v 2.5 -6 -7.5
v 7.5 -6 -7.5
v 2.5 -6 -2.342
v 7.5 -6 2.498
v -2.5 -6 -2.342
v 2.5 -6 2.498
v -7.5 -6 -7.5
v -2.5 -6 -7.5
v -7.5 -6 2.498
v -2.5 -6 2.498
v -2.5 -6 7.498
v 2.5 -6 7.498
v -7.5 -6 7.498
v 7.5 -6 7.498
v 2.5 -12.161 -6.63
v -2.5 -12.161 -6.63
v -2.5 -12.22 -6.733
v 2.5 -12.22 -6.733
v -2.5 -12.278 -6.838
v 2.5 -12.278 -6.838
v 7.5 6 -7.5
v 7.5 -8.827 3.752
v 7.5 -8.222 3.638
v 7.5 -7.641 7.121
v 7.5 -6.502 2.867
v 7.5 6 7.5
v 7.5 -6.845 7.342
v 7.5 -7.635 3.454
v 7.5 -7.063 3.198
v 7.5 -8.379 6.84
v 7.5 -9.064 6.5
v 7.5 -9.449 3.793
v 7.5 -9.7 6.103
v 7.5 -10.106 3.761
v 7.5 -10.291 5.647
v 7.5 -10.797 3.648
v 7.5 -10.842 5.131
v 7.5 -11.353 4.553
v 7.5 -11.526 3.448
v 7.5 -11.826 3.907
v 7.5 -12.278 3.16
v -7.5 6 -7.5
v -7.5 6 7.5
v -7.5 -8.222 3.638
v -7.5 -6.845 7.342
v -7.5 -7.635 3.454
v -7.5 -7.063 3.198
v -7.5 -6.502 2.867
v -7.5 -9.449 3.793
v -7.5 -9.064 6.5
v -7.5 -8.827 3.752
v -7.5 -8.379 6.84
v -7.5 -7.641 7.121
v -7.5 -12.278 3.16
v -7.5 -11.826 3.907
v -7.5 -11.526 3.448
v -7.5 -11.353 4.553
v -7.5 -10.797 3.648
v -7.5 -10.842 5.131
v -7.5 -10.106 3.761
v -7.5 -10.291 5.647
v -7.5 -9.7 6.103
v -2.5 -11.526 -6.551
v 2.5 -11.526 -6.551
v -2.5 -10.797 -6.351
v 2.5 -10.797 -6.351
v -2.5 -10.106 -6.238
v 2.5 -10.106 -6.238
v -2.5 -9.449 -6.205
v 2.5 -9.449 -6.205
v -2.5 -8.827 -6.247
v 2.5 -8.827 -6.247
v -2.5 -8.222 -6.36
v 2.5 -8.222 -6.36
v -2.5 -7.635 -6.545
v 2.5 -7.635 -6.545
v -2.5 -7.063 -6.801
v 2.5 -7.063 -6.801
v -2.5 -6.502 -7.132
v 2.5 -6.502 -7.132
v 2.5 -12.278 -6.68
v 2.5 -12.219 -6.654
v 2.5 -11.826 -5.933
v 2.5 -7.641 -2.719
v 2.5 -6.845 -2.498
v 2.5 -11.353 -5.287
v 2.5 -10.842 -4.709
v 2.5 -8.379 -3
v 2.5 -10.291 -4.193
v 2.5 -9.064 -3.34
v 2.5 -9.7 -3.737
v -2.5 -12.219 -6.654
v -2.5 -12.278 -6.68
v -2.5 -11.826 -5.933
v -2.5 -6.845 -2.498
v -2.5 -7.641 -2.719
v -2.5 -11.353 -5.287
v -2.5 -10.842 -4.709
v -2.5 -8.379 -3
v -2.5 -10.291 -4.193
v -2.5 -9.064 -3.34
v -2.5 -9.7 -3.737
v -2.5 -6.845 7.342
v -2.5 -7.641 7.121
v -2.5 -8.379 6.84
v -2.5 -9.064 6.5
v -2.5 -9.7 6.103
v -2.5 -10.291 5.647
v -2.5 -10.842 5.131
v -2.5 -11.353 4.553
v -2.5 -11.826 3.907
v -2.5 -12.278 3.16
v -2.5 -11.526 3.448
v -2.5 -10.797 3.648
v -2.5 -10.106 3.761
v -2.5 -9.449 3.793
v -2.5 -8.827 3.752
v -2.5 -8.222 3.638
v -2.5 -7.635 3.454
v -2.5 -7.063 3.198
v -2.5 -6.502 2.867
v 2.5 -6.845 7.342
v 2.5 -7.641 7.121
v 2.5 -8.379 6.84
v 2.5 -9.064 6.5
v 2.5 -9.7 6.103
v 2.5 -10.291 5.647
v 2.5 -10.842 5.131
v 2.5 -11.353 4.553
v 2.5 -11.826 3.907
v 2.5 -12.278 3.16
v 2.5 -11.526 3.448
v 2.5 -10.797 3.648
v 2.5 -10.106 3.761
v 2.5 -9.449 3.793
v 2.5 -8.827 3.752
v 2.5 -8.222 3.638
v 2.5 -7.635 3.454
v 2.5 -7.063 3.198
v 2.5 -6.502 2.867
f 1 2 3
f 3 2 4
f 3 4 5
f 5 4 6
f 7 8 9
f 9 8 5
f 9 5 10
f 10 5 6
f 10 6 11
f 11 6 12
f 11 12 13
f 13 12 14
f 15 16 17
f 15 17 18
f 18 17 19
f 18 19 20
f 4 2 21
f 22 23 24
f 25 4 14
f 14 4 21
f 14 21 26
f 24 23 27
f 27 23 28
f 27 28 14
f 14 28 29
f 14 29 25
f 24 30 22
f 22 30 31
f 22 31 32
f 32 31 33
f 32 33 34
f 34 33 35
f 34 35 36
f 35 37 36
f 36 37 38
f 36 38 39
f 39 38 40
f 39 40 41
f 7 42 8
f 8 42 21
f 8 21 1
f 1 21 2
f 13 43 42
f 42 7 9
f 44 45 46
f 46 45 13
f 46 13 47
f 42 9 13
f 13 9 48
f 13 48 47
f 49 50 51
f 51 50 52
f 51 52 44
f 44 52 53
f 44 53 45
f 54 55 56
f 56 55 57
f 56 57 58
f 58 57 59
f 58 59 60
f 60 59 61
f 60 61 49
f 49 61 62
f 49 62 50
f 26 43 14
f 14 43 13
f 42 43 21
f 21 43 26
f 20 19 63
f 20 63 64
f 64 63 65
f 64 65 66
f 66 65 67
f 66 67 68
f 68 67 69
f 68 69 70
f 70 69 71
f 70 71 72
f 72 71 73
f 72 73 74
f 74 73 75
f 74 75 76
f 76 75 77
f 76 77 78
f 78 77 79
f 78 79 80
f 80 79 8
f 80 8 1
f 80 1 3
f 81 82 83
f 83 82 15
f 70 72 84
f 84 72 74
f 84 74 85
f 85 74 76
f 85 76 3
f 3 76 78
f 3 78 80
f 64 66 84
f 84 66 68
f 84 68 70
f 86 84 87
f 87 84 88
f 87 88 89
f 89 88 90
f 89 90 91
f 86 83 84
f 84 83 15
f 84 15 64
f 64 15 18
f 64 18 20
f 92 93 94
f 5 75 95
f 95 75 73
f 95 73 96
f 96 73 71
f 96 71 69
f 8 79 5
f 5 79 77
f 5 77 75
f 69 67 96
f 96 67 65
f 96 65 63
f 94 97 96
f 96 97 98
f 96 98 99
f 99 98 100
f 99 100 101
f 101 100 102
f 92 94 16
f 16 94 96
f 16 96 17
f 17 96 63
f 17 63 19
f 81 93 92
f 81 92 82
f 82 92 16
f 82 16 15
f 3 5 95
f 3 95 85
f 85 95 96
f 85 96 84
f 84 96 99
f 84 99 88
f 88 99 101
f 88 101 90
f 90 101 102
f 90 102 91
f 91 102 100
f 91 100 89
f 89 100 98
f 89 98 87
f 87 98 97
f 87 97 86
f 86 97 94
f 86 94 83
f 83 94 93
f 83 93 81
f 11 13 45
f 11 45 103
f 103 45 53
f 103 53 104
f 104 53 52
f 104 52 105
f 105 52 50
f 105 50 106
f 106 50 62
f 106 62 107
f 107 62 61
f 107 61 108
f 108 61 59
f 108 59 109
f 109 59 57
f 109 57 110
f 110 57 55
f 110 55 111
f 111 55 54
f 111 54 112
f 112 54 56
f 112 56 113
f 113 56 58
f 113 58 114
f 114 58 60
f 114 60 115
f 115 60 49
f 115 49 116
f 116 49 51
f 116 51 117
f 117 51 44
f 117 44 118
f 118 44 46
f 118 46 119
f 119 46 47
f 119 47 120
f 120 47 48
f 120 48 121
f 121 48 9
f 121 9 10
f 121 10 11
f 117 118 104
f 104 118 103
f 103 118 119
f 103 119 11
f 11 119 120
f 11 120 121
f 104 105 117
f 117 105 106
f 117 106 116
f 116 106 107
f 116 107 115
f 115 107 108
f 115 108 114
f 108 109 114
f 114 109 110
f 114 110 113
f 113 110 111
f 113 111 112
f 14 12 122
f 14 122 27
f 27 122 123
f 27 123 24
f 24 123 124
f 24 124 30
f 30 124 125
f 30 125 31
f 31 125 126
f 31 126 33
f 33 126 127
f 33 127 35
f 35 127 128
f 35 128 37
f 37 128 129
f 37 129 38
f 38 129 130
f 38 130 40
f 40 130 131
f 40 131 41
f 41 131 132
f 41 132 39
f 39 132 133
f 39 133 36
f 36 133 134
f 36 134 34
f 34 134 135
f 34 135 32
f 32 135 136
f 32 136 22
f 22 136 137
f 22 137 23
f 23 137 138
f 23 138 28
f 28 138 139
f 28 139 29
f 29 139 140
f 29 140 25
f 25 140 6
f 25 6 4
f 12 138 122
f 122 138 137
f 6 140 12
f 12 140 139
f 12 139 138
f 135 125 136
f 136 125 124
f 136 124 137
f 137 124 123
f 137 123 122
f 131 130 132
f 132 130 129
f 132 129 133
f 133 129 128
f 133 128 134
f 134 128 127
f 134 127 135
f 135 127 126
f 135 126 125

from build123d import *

# Parameters (mm, degrees)
SKETCH_1_W               = 15
SKETCH_1_H               = 15
EXTRUDE_1_DEPTH          = 6
EXTRUDE_2_DEPTH          = 2.5
PATTERN_START            = -7.5
PATTERN_SKETCH_2_DEPTH   = 5
PATTERN_START_2          = 2.5
PATTERN_SKETCH_2_2_DEPTH = 5
PATTERN_START_3          = -2.5
PATTERN_SKETCH_2_3_DEPTH = 5


# Read off the part's stored shape, not the designer's step: 스케치 패턴2
with BuildPart() as part:
    # 스케치1 → 보스-돌출1 (new, symmetric)
    with BuildSketch(Plane(origin=(0, 0, 0), x_dir=(1, 0, 0), z_dir=(0, 1, 0))):
        Rectangle(SKETCH_1_W, SKETCH_1_H)
    extrude(amount=EXTRUDE_1_DEPTH, both=True)

    # 스케치3 → 보스-돌출2 (add, symmetric)
    with BuildSketch(Plane(origin=(0, 0, 0), x_dir=(0, 0, -1), z_dir=(1, 0, 0))):
        with BuildLine():
            Line((2.5, -6), (7.5, -6))
            add(Edge.make_bspline(
                [(6.837946582, -12.278081575), (5.299376428, -8.730527415), (7.5, -6)],
                knots=[0, 0, 0, 1, 1, 1], degree=2))
            add(Edge.make_bspline(
                [(2.5, -6), (3.098107293, -10.225865232), (6.837946582, -12.278081575)],
                knots=[0, 0, 0, 1, 1, 1], degree=2))
        make_face()
    extrude(amount=EXTRUDE_2_DEPTH, both=True)

    # 스케치 패턴2 outline → 스케치 패턴2 (add)
    with BuildSketch(Plane.YZ.offset(PATTERN_START)):
        with BuildLine():
            add(Edge.make_bspline(
                [(-12.278081575, 3.16045553), (-8.730527415, 4.699025684), (-6, 2.498402112)],
                knots=[0, 0, 0, 1, 1, 1], degree=2))
            Line((-6, 2.498402112), (-6, 7.498402112))
            add(Edge.make_bspline(
                [(-6, 7.498402112), (-10.225865232, 6.900294818), (-12.278081575, 3.16045553)],
                knots=[0, 0, 0, 1, 1, 1], degree=2))
        make_face()
    extrude(amount=PATTERN_SKETCH_2_DEPTH)

    # Pattern Sketch 2 2 outline → Pattern Sketch 2 2 (add)
    with BuildSketch(Plane.YZ.offset(PATTERN_START_2)):
        with BuildLine():
            add(Edge.make_bspline(
                [(-12.278081575, 3.16045553), (-8.730527415, 4.699025684), (-6, 2.498402112)],
                knots=[0, 0, 0, 1, 1, 1], degree=2))
            Line((-6, 2.498402112), (-6, 7.498402112))
            add(Edge.make_bspline(
                [(-6, 7.498402112), (-10.225865232, 6.900294818), (-12.278081575, 3.16045553)],
                knots=[0, 0, 0, 1, 1, 1], degree=2))
        make_face()
    extrude(amount=PATTERN_SKETCH_2_2_DEPTH)

    # Pattern Sketch 2 3 outline → Pattern Sketch 2 3 (add)
    with BuildSketch(Plane.YZ.offset(PATTERN_START_3)):
        with BuildLine():
            add(Edge.make_bspline(
                [(-6, -2.341597888), (-10.225865232, -2.939705182), (-12.278081575, -6.67954447)],
                knots=[0, 0, 0, 1, 1, 1], degree=2))
            add(Edge.make_bspline(
                [(-12.278081575, -6.67954447), (-12.219236087, -6.65402325), (-12.160615404, -6.629530866)],
                knots=[0, 0, 0, 0.016587622, 0.016587622, 0.016587622], degree=2))
            add(Edge.make_bspline(
                [(-6, -2.5), (-10.106703233, -3.081241715), (-12.160615404, -6.629530866)],
                knots=[0, 0, 0, 0.971801751, 0.971801751, 0.971801751], degree=2))
            Line((-6, -2.5), (-6, -2.341597888))
        make_face()
    extrude(amount=PATTERN_SKETCH_2_3_DEPTH)


solid = part.part
